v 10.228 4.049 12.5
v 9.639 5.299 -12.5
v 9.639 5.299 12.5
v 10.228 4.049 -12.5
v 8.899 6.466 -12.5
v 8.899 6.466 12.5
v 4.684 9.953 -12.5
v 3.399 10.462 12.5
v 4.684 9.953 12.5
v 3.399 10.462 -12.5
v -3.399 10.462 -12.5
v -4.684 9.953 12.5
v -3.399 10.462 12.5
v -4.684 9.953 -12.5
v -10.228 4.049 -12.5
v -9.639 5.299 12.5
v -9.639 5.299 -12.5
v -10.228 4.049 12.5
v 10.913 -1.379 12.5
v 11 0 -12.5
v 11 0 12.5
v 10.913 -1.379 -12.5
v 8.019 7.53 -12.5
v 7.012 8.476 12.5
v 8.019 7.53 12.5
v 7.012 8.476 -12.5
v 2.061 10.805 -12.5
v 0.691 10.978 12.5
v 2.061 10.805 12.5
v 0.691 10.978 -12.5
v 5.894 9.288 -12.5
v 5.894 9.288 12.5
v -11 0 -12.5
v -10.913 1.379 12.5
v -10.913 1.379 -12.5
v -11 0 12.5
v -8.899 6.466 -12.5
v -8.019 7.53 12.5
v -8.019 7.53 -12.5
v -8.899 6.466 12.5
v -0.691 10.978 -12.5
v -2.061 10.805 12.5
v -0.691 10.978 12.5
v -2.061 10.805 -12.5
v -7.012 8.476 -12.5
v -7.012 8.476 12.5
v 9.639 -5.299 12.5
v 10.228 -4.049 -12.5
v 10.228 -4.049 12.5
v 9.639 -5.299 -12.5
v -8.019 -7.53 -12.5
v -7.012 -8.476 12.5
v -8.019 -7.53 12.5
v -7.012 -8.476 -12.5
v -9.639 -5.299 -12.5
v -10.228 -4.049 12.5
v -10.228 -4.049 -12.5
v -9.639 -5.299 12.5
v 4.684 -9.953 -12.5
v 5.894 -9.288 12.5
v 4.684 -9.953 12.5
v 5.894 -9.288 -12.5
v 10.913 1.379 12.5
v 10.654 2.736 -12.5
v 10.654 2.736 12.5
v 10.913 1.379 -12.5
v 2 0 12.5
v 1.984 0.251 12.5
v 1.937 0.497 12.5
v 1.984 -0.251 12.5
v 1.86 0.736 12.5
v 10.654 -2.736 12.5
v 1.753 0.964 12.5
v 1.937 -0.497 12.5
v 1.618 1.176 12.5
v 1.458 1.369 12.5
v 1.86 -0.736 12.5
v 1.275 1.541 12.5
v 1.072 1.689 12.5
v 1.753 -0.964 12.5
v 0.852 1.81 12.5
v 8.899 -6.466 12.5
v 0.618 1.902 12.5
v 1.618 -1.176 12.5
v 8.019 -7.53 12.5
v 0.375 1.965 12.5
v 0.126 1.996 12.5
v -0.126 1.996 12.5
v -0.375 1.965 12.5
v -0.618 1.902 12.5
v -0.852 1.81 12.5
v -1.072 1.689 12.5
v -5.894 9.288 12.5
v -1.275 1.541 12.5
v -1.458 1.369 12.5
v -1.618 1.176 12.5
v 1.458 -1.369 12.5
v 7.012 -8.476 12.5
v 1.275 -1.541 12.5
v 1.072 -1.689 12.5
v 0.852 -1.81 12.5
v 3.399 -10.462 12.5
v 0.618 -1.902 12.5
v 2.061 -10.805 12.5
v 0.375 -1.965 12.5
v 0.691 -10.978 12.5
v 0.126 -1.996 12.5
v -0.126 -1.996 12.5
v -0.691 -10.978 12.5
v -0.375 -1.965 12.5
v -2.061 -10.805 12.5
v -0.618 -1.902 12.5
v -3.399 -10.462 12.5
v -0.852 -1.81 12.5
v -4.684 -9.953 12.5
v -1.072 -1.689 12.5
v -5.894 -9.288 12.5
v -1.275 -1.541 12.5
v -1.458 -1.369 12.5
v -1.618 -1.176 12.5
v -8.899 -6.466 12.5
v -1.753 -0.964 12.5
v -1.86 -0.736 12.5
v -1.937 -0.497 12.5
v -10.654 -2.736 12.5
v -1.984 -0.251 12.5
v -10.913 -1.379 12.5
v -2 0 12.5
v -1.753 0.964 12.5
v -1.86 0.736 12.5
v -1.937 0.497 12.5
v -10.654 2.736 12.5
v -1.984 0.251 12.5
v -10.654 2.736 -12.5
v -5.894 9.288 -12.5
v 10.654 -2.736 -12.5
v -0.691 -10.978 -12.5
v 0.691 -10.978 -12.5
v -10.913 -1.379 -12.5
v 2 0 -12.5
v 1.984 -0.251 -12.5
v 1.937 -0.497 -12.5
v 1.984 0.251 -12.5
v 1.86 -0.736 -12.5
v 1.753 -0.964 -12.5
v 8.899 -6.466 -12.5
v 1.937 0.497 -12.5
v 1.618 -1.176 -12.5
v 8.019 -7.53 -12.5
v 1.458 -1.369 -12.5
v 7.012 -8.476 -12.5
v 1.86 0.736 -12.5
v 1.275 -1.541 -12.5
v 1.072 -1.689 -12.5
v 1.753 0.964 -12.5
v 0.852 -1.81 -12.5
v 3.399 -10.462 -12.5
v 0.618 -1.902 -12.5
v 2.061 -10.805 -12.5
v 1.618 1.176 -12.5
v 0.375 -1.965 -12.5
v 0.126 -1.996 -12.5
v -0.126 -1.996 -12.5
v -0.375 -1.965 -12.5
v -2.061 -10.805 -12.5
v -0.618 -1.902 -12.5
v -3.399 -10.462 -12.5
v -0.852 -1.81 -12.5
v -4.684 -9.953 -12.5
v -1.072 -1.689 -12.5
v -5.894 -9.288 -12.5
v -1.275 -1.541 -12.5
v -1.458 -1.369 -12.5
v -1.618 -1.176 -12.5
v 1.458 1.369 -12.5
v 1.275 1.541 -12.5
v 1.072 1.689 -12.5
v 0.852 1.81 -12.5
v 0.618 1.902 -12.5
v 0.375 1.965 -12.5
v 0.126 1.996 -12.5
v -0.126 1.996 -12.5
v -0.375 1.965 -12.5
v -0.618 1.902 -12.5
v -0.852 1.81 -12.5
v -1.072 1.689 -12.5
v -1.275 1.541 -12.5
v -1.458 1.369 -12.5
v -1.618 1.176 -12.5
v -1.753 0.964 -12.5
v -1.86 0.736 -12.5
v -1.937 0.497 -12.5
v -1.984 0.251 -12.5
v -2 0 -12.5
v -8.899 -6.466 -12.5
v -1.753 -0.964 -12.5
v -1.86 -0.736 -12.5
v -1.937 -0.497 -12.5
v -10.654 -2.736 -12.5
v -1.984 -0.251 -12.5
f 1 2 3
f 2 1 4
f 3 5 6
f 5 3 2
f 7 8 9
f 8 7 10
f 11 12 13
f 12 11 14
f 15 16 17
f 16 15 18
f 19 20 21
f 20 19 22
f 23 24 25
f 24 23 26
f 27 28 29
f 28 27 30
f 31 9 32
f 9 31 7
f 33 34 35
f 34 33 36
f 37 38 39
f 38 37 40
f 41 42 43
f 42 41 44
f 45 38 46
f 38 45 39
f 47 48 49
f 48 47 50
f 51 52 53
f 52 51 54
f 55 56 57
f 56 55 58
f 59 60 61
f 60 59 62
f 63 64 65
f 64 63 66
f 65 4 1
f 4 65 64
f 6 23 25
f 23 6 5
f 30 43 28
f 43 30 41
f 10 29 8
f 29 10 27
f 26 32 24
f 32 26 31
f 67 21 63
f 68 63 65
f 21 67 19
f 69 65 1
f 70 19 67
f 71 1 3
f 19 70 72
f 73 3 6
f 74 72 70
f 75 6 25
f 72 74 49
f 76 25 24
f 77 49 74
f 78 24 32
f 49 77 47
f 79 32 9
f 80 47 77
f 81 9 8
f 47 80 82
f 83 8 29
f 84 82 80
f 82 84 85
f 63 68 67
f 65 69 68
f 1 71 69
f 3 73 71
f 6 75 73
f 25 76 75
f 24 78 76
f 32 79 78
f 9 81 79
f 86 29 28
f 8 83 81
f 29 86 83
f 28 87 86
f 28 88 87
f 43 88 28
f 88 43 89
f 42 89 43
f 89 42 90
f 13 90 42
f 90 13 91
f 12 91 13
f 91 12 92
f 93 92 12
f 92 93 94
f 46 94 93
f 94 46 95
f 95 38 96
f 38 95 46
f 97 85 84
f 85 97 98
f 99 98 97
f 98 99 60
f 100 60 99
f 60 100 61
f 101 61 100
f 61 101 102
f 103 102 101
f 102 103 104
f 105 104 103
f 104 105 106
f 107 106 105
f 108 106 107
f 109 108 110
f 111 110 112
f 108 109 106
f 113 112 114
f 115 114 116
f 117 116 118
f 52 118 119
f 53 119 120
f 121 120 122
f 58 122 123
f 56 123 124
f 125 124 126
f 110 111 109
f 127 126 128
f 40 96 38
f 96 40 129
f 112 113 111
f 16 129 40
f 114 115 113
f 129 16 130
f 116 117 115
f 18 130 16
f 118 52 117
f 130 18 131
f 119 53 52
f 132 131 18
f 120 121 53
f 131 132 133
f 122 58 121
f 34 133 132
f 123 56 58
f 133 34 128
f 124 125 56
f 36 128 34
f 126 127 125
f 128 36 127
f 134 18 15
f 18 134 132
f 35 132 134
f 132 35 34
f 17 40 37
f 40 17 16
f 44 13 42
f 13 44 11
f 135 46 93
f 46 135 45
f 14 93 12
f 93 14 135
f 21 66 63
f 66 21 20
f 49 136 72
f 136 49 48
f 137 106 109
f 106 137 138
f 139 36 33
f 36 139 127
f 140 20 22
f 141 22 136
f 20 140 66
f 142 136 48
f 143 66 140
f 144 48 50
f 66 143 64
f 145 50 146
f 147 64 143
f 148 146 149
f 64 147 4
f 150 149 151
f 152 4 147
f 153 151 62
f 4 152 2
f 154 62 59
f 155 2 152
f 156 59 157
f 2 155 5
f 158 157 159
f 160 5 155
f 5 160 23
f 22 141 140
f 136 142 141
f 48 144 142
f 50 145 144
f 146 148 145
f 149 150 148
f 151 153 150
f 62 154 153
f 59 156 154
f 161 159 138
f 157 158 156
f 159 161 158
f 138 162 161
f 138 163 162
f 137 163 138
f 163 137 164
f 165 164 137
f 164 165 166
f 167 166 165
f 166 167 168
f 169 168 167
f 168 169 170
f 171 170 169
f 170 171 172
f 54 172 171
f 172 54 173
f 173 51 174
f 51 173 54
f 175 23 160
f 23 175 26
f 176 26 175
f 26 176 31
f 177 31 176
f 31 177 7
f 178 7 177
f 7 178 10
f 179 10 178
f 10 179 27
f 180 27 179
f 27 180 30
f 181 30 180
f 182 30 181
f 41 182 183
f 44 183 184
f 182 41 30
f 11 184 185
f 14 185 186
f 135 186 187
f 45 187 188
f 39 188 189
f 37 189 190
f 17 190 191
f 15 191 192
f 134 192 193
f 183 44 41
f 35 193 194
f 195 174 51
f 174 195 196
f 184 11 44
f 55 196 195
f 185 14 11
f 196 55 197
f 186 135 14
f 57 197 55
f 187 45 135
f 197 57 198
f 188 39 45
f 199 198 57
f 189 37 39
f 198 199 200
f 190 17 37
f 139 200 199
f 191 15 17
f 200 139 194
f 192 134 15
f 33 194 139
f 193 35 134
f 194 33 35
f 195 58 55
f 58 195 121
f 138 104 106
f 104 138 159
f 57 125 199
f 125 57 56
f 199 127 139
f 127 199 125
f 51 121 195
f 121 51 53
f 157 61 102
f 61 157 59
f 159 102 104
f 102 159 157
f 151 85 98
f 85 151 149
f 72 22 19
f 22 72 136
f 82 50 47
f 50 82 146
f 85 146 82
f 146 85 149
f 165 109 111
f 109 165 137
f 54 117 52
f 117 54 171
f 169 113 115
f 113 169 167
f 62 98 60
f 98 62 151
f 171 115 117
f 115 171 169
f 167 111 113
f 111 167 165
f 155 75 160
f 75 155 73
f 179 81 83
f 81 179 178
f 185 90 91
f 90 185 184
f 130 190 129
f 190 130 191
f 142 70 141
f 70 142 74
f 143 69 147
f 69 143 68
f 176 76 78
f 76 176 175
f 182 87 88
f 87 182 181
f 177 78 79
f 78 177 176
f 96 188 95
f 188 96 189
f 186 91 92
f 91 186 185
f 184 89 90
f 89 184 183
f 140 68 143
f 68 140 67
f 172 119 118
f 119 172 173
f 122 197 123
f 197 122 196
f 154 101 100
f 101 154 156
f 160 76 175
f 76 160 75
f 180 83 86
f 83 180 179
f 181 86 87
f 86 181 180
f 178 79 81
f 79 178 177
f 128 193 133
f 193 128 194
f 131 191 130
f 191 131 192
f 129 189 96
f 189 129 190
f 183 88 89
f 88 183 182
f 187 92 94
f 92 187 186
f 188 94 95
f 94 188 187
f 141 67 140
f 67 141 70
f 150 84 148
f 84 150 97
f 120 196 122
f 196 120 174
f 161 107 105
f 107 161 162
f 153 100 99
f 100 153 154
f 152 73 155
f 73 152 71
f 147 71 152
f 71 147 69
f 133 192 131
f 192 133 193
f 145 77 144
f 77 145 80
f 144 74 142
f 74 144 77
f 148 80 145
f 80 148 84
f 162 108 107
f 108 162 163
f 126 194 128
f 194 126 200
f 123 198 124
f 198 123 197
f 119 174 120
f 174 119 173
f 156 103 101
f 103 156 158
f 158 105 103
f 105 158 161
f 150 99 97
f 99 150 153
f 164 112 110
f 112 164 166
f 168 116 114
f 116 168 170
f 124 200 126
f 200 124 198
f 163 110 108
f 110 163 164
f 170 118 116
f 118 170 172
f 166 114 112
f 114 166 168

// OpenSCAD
$fn = 50;


difference() {
	union() {
		translate(v = [0, 0, -12.5000000000]) {
			cylinder(h = 25, r = 11.0000000000);
		}
	}
	union() {
		translate(v = [0, 0, -100.0000000000]) {
			cylinder(h = 200, r = 2);
		}
	}
}
